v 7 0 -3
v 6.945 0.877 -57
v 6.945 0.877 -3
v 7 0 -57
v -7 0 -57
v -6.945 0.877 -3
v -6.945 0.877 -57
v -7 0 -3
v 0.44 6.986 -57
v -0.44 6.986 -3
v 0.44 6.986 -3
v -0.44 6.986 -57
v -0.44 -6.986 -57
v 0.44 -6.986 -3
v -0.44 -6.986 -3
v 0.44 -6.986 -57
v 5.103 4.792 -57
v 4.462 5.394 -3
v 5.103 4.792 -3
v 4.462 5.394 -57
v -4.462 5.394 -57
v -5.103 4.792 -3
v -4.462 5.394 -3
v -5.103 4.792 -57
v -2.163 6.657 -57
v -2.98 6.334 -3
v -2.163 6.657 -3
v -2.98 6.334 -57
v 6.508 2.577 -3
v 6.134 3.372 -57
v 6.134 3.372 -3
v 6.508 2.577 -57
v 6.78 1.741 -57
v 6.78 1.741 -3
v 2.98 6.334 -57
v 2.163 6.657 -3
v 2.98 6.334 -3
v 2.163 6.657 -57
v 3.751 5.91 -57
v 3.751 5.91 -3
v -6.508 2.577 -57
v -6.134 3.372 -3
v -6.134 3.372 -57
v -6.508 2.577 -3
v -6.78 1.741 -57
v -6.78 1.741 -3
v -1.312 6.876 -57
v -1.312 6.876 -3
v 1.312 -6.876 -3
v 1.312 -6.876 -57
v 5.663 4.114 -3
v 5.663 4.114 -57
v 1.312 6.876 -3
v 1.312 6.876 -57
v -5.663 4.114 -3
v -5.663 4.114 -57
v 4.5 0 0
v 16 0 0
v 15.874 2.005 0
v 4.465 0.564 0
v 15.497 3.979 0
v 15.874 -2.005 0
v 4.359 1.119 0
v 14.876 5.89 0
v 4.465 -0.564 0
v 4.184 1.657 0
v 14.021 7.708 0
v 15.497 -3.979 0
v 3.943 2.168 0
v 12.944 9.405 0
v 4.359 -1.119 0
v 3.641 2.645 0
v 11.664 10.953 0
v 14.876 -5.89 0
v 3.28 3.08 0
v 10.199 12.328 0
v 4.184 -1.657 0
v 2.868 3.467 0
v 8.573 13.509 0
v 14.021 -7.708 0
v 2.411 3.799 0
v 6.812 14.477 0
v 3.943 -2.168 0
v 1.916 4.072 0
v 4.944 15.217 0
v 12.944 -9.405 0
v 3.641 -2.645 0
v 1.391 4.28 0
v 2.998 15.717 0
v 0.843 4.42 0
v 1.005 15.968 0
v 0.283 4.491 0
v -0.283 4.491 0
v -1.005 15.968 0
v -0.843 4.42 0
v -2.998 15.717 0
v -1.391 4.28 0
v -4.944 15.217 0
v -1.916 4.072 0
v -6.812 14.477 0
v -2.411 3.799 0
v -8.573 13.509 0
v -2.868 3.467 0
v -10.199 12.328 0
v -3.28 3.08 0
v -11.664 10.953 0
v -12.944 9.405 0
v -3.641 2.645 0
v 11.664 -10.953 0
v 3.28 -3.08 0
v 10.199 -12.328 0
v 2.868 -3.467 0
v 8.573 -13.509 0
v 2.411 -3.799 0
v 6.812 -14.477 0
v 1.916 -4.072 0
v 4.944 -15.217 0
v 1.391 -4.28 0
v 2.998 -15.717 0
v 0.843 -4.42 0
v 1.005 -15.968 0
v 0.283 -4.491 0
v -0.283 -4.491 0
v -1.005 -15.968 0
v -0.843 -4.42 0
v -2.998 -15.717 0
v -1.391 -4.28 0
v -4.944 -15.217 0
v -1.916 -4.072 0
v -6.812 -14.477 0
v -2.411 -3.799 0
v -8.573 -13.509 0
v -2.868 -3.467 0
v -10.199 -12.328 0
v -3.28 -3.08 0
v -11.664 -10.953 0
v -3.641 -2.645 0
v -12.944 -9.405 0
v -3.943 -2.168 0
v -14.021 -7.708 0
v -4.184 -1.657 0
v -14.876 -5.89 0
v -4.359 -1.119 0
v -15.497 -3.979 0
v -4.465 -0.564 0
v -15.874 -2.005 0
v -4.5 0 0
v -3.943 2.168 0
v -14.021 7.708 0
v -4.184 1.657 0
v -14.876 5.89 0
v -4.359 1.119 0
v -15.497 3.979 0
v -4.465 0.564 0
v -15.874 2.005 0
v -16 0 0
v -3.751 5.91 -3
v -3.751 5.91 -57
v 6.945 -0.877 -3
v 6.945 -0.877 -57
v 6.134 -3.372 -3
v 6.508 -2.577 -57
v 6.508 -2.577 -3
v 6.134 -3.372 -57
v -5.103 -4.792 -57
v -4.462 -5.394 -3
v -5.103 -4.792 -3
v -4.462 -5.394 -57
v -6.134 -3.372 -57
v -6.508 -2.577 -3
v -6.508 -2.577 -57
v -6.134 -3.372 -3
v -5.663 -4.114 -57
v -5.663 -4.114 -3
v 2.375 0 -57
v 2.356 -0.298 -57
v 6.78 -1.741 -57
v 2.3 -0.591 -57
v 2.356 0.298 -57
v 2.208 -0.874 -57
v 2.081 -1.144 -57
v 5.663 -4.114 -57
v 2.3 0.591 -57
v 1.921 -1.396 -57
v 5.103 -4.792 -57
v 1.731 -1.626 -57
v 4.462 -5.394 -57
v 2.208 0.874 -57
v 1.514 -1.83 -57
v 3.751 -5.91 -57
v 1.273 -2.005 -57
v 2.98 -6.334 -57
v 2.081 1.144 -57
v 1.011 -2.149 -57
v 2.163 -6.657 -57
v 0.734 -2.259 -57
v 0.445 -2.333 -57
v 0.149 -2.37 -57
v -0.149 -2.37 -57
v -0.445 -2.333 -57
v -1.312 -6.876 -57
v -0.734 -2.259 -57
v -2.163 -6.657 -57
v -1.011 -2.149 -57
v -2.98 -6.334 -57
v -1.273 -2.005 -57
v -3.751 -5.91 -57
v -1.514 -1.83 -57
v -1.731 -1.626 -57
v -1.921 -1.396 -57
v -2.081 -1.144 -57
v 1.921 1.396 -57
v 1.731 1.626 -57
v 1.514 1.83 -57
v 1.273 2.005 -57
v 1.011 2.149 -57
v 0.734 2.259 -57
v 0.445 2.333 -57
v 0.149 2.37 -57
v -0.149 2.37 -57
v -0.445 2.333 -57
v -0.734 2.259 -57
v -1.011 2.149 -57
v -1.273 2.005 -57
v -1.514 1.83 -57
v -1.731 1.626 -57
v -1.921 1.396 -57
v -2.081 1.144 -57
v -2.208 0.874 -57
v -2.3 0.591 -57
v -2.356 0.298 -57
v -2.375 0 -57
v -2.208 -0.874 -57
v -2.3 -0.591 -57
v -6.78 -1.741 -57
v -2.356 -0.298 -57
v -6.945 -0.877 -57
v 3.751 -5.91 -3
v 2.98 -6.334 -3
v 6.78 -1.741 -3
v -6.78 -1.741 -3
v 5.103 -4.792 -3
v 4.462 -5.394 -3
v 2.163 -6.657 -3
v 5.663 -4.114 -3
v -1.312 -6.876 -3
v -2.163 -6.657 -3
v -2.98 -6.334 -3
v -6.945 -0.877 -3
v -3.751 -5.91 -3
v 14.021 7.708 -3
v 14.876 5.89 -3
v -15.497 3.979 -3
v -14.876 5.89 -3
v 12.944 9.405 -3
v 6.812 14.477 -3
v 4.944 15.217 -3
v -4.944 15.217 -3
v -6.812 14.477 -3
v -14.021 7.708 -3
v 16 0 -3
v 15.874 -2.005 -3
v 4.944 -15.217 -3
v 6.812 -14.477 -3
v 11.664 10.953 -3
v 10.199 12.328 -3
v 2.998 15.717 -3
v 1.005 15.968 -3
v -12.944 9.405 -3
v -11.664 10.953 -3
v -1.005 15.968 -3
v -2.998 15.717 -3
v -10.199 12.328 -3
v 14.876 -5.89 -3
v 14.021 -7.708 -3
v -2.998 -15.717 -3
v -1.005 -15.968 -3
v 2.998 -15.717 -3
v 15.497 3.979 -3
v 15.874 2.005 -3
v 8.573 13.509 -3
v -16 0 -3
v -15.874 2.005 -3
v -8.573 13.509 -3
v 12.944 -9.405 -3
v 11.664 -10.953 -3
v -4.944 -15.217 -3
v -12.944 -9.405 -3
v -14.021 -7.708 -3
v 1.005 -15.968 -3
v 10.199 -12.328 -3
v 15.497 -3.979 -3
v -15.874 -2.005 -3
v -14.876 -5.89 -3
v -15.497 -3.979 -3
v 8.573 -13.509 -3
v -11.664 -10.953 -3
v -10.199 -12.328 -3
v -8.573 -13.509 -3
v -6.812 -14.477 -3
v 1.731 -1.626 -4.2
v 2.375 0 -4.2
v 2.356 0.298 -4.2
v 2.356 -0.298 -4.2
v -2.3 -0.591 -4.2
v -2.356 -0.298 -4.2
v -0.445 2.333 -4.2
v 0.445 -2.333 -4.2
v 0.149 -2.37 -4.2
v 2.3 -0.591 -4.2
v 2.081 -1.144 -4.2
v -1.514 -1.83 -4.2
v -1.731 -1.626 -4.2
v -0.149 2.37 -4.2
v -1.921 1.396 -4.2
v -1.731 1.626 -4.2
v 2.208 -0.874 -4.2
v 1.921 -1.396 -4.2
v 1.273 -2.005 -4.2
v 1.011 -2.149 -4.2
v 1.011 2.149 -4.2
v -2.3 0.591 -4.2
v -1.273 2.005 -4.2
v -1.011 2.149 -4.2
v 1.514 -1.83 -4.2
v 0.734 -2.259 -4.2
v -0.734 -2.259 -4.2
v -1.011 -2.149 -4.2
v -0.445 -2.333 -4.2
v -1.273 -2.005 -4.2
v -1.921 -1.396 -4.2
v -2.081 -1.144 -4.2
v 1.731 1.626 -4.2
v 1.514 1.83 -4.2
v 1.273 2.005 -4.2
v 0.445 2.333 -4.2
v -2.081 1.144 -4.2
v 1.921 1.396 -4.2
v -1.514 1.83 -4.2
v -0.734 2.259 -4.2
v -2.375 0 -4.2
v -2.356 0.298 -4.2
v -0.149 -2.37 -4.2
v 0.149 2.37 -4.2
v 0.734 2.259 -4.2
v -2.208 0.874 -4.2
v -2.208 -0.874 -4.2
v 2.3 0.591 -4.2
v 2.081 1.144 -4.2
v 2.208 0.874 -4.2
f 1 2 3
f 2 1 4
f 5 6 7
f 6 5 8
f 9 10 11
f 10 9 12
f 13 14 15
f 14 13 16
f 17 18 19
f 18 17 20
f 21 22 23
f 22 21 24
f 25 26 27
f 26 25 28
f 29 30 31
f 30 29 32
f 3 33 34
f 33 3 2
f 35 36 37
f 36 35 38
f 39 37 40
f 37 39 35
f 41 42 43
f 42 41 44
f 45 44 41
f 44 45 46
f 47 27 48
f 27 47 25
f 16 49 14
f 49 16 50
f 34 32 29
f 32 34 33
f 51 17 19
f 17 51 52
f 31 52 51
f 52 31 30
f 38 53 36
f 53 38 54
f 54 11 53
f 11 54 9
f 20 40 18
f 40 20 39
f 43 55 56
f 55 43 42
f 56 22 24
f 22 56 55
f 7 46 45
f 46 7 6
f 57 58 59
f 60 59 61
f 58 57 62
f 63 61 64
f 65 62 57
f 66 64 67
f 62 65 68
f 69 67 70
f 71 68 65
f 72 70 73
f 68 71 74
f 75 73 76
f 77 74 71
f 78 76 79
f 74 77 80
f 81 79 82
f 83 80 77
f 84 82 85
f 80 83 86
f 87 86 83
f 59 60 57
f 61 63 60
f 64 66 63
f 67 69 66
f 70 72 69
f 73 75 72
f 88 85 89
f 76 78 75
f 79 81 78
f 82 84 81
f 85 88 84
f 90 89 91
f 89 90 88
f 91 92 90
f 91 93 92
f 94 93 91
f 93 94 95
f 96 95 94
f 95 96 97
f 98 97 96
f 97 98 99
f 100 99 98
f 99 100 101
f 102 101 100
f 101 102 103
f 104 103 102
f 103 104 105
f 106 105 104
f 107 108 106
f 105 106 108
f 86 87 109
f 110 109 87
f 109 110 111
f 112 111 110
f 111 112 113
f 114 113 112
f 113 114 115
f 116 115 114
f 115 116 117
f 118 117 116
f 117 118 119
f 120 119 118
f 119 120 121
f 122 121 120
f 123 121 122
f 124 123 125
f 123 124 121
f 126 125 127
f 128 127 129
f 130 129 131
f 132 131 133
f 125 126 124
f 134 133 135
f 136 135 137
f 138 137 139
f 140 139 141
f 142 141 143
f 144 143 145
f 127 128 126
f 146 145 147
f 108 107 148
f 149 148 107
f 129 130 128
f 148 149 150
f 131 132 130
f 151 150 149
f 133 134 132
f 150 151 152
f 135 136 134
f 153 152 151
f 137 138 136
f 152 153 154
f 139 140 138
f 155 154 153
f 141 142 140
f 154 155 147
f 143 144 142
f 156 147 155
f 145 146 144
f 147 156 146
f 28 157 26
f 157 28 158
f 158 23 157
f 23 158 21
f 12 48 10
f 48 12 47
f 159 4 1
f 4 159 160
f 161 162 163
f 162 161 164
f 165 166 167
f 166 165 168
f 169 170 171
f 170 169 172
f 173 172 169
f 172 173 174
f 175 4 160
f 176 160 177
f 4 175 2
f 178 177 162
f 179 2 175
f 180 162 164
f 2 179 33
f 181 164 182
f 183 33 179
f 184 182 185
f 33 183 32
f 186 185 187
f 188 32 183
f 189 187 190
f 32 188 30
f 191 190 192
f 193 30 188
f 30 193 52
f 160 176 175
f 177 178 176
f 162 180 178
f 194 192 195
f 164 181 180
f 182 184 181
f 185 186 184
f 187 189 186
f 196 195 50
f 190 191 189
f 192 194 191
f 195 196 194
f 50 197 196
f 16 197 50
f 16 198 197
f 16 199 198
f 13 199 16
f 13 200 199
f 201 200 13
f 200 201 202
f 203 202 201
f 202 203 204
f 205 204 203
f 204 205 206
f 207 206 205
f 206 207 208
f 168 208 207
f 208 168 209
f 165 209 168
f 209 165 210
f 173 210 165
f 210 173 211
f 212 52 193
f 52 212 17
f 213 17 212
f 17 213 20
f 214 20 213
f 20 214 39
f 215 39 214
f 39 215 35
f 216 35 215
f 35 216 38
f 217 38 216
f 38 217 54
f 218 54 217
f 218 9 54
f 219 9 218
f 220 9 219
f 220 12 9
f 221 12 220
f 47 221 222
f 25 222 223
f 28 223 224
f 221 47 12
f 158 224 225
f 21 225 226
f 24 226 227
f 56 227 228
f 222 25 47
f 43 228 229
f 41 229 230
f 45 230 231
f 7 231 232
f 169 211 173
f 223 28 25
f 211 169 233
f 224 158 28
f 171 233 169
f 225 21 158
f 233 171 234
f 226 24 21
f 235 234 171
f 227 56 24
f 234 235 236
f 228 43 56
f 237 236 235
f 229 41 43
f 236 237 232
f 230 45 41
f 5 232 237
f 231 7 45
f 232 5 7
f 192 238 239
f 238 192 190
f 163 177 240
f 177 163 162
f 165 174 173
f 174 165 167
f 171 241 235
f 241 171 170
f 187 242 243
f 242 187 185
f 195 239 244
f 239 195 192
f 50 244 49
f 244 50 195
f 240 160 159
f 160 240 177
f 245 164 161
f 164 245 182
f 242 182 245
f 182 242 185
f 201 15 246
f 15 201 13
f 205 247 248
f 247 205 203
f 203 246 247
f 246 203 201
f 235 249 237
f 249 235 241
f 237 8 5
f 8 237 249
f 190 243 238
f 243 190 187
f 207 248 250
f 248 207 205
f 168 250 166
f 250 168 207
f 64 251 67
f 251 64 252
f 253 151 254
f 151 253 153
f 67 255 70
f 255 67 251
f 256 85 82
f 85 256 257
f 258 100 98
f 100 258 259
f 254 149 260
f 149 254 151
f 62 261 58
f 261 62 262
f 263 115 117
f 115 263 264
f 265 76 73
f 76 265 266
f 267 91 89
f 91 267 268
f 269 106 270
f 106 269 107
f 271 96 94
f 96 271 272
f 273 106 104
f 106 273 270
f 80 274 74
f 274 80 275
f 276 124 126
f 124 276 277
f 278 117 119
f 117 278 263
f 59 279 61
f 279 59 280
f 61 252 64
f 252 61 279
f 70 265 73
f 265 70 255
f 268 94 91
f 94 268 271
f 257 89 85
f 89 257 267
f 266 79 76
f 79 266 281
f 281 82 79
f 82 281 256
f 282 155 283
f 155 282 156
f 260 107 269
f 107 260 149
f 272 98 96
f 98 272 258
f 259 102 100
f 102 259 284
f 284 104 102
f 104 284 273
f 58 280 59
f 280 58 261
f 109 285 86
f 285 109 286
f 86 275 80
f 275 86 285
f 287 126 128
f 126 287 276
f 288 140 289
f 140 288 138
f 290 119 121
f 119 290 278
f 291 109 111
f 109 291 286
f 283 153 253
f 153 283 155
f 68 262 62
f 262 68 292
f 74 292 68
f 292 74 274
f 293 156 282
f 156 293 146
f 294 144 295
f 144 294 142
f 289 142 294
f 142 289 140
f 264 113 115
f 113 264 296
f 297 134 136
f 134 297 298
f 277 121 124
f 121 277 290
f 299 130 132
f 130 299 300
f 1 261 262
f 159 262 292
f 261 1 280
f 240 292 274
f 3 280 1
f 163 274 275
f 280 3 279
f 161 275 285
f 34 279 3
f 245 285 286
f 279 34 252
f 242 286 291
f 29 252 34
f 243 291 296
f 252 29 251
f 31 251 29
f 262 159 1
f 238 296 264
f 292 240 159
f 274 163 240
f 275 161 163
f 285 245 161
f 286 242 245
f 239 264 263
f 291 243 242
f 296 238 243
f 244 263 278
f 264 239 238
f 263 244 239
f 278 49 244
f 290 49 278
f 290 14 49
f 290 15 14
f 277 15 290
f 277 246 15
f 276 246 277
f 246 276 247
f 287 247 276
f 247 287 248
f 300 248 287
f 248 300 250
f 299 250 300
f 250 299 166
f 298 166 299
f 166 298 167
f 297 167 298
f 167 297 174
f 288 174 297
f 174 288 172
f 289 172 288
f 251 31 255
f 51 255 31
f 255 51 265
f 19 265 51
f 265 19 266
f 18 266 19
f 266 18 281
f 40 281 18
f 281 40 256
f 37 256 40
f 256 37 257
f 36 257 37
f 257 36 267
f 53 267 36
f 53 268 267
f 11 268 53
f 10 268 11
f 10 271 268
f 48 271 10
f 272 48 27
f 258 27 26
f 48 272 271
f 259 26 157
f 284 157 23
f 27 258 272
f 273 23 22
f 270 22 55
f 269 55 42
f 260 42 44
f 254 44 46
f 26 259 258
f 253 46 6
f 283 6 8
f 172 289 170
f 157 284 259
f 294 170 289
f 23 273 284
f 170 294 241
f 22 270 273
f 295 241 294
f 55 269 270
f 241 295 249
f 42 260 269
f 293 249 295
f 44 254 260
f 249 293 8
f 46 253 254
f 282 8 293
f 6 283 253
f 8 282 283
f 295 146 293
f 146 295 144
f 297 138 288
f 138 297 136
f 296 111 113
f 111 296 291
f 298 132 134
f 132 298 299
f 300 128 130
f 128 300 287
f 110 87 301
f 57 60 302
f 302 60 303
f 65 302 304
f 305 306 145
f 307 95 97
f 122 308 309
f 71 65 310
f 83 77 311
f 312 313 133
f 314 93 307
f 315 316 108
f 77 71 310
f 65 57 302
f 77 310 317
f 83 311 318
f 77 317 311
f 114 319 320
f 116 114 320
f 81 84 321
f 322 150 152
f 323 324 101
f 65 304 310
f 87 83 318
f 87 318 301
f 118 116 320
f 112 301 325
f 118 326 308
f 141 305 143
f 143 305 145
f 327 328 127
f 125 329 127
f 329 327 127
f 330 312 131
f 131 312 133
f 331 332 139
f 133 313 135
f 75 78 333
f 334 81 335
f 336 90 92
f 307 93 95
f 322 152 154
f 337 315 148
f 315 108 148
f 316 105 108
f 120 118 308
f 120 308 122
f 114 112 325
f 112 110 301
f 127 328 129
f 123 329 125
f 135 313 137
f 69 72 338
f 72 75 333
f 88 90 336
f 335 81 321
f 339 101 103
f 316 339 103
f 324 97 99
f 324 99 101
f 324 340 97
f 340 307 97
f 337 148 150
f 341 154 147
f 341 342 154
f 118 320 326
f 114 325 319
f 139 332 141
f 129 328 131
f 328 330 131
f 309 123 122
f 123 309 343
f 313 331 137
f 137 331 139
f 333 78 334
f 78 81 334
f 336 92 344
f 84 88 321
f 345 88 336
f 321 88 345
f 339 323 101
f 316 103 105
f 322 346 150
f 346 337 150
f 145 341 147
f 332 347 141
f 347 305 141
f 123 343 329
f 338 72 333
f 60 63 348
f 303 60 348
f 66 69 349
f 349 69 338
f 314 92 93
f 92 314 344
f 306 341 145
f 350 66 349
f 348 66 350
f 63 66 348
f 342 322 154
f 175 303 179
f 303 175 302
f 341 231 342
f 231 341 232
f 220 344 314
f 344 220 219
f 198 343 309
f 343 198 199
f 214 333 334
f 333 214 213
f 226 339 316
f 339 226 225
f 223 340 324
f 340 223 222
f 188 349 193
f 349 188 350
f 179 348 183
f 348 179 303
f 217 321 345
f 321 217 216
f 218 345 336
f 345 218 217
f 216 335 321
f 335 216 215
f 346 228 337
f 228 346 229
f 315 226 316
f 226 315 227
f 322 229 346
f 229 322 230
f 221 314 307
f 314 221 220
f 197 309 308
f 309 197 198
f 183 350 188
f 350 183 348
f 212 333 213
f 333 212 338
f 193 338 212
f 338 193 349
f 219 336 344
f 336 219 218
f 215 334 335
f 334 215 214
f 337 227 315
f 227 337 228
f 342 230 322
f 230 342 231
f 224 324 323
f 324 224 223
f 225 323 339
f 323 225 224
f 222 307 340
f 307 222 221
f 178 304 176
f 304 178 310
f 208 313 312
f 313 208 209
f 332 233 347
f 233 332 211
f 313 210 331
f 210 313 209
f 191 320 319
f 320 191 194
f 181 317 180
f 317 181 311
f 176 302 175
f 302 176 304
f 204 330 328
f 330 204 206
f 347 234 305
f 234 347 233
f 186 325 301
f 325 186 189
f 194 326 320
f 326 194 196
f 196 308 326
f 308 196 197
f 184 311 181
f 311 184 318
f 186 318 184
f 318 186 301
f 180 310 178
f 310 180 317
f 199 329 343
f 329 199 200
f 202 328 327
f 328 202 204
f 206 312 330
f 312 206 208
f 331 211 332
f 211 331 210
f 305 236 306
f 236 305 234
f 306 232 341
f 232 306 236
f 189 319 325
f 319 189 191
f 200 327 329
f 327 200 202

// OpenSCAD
$fn = 50;


difference() {
	union() {
		translate(v = [0, 0, -57.0000000000]) {
			cylinder(h = 57, r = 7.0000000000);
		}
		translate(v = [0, 0, -3.0000000000]) {
			cylinder(h = 3, r = 16.0000000000);
		}
	}
	union() {
		translate(v = [0, 0, 0]) {
			rotate(a = [0, 0, 0]) {
				difference() {
					union() {
						#translate(v = [0, 0, -57.0000000000]) {
							cylinder(h = 57, r = 2.2500000000);
						}
						#translate(v = [0, 0, -4.2000000000]) {
							cylinder(h = 4.2000000000, r = 7.0000000000, r1 = 2.3750000000, r2 = 4.5000000000);
						}
						#translate(v = [0, 0, -57.0000000000]) {
							cylinder(h = 57, r = 2.3750000000);
						}
						#translate(v = [0, 0, -57.0000000000]) {
							cylinder(h = 57, r = 2.2500000000);
						}
					}
					union();
				}
			}
		}
	}
}
